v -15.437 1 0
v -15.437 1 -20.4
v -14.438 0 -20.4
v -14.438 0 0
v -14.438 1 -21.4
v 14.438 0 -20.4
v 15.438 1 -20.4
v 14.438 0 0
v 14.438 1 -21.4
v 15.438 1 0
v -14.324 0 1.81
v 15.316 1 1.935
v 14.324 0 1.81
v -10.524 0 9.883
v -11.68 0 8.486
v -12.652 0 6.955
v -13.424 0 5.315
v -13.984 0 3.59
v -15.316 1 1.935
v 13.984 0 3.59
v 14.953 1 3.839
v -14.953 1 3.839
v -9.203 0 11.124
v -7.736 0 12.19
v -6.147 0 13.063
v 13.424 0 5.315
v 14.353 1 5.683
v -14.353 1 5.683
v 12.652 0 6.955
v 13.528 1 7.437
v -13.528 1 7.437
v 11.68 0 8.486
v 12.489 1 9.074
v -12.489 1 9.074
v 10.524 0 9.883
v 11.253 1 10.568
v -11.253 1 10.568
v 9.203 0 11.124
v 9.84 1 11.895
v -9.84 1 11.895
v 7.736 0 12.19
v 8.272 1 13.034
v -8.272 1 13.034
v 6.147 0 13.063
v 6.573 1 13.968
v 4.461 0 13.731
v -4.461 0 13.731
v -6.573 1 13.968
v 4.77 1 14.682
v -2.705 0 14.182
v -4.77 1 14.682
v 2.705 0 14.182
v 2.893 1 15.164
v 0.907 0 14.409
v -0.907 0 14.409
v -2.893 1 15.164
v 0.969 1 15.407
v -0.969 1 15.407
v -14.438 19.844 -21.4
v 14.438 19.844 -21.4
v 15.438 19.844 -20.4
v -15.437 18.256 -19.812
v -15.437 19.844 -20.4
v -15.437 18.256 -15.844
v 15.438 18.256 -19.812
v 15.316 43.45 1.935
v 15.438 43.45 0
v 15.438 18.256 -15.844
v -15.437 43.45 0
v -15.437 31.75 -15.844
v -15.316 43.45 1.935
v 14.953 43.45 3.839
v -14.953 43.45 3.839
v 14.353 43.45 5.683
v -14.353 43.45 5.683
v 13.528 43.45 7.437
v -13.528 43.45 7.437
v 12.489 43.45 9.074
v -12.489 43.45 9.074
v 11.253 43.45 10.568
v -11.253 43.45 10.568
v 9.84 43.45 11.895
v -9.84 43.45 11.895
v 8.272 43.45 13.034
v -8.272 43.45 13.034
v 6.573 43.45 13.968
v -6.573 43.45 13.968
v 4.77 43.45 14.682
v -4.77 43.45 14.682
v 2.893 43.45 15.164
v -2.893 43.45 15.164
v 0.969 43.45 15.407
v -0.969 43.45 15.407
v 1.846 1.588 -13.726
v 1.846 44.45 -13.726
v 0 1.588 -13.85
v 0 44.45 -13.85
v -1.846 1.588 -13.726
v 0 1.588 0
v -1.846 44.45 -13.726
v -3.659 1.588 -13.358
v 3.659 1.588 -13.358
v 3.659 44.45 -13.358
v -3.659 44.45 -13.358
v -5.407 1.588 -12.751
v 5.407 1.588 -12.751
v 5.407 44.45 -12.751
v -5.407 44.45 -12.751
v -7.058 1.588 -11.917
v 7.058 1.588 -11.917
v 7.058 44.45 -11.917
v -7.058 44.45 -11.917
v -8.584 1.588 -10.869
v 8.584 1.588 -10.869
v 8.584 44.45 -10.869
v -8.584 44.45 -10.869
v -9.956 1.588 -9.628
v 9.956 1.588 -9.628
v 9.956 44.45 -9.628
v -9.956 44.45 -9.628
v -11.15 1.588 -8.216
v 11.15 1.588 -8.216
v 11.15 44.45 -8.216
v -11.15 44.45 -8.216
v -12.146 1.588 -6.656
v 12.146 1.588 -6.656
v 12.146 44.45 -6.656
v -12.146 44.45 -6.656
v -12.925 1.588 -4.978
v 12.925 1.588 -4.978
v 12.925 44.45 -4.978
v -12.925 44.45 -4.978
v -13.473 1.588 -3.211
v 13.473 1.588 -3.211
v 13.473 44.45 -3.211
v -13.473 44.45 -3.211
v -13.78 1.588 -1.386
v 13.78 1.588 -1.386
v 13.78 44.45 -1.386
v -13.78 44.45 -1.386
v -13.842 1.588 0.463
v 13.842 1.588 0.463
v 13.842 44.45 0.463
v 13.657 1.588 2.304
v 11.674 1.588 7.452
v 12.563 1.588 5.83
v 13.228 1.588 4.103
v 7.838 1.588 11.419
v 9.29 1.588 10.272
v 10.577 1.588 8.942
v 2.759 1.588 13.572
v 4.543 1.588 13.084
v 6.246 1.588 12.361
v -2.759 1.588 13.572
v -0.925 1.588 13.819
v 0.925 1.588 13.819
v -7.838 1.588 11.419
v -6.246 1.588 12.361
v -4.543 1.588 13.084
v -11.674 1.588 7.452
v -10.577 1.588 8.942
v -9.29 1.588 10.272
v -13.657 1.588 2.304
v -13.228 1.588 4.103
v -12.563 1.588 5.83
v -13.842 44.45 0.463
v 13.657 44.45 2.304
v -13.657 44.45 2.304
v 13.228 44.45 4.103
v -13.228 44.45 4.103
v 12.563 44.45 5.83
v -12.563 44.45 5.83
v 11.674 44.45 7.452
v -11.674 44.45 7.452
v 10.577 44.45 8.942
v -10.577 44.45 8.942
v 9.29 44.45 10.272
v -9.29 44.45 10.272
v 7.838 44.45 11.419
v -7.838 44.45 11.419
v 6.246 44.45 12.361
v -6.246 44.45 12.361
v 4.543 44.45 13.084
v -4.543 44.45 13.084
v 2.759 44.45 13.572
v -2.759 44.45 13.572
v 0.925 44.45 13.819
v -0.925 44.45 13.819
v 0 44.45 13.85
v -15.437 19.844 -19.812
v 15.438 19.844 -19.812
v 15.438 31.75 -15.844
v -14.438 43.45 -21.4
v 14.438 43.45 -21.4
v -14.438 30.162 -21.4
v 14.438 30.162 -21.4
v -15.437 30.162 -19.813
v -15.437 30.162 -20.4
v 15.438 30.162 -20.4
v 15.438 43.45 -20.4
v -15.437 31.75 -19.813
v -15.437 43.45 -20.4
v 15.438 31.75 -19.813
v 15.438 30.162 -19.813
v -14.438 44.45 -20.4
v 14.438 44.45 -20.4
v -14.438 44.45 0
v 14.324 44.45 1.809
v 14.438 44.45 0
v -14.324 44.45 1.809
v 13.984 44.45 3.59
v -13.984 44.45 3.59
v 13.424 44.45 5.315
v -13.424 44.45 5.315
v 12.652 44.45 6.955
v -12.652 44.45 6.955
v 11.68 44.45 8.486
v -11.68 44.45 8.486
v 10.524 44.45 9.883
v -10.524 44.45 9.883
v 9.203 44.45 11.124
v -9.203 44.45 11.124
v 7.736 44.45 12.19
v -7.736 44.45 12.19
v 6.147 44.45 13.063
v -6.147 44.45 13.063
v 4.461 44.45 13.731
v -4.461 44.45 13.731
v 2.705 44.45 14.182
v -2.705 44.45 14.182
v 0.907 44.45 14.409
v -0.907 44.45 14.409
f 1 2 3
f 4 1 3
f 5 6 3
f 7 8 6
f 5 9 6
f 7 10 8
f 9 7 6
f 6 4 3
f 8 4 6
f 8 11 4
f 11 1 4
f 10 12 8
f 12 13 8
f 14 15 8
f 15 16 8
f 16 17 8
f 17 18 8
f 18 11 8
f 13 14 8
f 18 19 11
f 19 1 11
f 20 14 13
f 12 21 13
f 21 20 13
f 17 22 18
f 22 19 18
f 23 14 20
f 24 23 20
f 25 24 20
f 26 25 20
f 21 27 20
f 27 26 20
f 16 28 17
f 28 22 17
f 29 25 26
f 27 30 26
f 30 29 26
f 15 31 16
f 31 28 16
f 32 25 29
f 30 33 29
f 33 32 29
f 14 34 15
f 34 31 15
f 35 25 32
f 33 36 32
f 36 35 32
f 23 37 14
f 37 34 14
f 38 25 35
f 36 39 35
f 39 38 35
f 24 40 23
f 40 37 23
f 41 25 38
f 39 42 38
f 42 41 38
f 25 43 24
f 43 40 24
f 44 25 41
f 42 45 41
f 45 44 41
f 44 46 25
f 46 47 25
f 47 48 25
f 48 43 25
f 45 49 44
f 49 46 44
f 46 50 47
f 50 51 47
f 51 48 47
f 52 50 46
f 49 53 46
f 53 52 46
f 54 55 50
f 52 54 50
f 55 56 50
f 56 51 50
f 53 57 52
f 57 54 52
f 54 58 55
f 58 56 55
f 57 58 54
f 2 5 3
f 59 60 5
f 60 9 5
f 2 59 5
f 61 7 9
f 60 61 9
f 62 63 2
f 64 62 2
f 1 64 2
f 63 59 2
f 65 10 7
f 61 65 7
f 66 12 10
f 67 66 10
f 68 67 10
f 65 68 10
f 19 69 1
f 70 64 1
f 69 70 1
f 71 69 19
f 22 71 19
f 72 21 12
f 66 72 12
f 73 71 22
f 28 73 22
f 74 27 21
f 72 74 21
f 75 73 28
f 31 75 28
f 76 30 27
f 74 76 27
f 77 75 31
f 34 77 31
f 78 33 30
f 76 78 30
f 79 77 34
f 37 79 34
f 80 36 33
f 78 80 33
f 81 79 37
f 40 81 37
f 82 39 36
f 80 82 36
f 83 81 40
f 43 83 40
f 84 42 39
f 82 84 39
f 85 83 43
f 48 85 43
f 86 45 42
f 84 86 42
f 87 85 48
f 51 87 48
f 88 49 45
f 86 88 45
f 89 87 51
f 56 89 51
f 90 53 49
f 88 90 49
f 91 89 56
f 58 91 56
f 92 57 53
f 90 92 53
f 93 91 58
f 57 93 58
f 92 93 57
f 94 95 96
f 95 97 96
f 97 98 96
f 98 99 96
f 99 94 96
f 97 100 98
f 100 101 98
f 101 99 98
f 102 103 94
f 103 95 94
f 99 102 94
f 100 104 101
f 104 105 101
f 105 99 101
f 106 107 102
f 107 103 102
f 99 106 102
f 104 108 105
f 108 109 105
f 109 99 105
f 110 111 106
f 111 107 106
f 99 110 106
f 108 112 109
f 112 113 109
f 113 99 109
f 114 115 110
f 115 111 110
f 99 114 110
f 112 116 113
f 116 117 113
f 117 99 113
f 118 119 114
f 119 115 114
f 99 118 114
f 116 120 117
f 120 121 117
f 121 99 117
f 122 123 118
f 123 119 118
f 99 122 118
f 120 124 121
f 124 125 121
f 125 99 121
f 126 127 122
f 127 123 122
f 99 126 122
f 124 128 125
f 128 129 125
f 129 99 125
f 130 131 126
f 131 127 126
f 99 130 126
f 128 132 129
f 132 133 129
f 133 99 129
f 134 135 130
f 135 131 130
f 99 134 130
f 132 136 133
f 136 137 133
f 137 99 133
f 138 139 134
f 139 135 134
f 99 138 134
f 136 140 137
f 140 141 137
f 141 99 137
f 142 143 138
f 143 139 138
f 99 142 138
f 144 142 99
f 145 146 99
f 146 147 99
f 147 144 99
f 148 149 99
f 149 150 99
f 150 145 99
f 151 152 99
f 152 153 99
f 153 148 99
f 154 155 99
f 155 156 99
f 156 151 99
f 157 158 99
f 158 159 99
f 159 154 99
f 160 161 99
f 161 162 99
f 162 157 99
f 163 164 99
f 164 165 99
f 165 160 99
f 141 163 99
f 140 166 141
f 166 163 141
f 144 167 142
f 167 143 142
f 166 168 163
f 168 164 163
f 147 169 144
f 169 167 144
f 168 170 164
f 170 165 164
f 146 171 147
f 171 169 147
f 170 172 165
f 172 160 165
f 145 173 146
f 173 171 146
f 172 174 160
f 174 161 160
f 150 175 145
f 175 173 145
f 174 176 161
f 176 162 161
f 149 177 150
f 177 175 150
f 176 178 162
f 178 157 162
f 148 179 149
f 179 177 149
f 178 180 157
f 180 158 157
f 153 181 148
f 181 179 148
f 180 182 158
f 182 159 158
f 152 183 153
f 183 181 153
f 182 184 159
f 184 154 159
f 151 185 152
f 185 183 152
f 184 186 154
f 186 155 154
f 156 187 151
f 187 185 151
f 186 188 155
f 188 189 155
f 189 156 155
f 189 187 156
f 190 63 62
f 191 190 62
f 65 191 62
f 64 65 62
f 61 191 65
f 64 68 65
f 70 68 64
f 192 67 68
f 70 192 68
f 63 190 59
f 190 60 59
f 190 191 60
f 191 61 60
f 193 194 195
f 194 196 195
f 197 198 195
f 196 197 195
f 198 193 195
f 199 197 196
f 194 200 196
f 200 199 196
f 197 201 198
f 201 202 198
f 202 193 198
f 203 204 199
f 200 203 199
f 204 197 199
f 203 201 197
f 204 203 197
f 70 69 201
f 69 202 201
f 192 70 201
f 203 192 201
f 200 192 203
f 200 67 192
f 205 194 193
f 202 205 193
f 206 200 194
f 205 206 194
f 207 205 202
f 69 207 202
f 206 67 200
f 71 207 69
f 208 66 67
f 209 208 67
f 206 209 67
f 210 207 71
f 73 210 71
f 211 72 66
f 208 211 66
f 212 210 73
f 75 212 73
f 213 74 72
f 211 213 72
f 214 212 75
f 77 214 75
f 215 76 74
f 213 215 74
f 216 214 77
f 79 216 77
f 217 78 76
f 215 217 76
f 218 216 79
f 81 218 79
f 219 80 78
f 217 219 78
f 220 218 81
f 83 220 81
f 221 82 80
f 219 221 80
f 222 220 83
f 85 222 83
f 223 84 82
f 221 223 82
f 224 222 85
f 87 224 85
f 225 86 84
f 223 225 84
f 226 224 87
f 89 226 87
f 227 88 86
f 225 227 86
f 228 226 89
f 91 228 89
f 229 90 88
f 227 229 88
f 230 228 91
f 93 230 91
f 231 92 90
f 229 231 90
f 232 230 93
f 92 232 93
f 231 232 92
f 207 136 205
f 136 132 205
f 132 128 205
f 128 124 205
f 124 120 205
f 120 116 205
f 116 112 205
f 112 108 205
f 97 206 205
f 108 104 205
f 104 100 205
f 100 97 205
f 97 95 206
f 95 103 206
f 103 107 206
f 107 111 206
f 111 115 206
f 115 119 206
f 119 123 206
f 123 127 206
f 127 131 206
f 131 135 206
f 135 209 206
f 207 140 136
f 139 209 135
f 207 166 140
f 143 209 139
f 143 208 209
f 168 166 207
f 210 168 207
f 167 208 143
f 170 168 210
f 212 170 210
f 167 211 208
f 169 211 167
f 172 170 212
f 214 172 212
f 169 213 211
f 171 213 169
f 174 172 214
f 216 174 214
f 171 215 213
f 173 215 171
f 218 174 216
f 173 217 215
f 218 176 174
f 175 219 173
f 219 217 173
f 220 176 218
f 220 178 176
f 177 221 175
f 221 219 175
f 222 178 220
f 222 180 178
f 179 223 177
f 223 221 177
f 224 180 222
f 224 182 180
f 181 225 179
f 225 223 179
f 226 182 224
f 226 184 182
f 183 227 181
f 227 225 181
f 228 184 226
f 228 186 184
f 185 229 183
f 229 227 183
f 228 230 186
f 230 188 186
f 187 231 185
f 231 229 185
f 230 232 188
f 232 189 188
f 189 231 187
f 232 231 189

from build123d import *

# Parameters (mm, degrees)
SKETCH1_R           = 13.85
BOSS_EXTRUDE1_DEPTH = 44.45
SKETCH2_R           = 15.08125
BOSS_EXTRUDE2_DEPTH = 1.5875
CUT_EXTRUDE1_DEPTH  = 31.875
CHAMFER1_SIZE       = 1


with BuildPart() as part:
    # Sketch1 → Boss-Extrude1 (new body)
    with BuildSketch(Plane(origin=(0, 0, 0), x_dir=(1, 0, 0), z_dir=(0, 1, 0))):
        with BuildLine():
            Line((-15.4375, 0), (-15.4375, 21.4))
            Line((-15.4375, 21.4), (15.4375, 21.4))
            Line((15.4375, 21.4), (15.4375, 0))
            ThreePointArc((15.4375, 0), (0, -15.4375), (-15.4375, 0))
        make_face()
        Circle(SKETCH1_R, mode=Mode.SUBTRACT)
    extrude(amount=BOSS_EXTRUDE1_DEPTH)

    # Sketch2 → Boss-Extrude2 (add)
    with BuildSketch(Plane.XZ):
        Circle(SKETCH2_R)
    extrude(amount=-BOSS_EXTRUDE2_DEPTH)

    # Sketch3 → Cut-Extrude1 (cut, through all)
    with BuildSketch(Plane(origin=(15.4375, 0, 0), x_dir=(0, 0, -1), z_dir=(1, 0, 0))):
        Polygon((21.4, 30.1625), (19.8125, 30.1625), (19.8125, 31.75), (15.84375, 31.75), (15.84375, 18.25625), (19.8125, 18.25625), (19.8125, 19.84375), (21.4, 19.84375), align=None)
    extrude(amount=-CUT_EXTRUDE1_DEPTH, mode=Mode.SUBTRACT)

    # Chamfer1
    chamfer1_edges = [part.edges().sort_by_distance(p)[0] for p in [
        (0, 44.45, -21.4),
        (-15.4375, 44.45, -10.7),
        (-15.4375, 9.921875, -21.4),
        (15.4375, 9.921875, -21.4),
        (0, 44.45, 15.4375),
        (-15.4375, 0, -10.7),
        (0, 0, -21.4),
        (15.4375, 0, -10.7),
        (0, 0, 15.4375),
        (15.4375, 44.45, -10.7),
        (-15.4375, 37.30625, -21.4),
        (15.4375, 37.30625, -21.4),
    ]]
    chamfer(chamfer1_edges, length=CHAMFER1_SIZE)


solid = part.part
